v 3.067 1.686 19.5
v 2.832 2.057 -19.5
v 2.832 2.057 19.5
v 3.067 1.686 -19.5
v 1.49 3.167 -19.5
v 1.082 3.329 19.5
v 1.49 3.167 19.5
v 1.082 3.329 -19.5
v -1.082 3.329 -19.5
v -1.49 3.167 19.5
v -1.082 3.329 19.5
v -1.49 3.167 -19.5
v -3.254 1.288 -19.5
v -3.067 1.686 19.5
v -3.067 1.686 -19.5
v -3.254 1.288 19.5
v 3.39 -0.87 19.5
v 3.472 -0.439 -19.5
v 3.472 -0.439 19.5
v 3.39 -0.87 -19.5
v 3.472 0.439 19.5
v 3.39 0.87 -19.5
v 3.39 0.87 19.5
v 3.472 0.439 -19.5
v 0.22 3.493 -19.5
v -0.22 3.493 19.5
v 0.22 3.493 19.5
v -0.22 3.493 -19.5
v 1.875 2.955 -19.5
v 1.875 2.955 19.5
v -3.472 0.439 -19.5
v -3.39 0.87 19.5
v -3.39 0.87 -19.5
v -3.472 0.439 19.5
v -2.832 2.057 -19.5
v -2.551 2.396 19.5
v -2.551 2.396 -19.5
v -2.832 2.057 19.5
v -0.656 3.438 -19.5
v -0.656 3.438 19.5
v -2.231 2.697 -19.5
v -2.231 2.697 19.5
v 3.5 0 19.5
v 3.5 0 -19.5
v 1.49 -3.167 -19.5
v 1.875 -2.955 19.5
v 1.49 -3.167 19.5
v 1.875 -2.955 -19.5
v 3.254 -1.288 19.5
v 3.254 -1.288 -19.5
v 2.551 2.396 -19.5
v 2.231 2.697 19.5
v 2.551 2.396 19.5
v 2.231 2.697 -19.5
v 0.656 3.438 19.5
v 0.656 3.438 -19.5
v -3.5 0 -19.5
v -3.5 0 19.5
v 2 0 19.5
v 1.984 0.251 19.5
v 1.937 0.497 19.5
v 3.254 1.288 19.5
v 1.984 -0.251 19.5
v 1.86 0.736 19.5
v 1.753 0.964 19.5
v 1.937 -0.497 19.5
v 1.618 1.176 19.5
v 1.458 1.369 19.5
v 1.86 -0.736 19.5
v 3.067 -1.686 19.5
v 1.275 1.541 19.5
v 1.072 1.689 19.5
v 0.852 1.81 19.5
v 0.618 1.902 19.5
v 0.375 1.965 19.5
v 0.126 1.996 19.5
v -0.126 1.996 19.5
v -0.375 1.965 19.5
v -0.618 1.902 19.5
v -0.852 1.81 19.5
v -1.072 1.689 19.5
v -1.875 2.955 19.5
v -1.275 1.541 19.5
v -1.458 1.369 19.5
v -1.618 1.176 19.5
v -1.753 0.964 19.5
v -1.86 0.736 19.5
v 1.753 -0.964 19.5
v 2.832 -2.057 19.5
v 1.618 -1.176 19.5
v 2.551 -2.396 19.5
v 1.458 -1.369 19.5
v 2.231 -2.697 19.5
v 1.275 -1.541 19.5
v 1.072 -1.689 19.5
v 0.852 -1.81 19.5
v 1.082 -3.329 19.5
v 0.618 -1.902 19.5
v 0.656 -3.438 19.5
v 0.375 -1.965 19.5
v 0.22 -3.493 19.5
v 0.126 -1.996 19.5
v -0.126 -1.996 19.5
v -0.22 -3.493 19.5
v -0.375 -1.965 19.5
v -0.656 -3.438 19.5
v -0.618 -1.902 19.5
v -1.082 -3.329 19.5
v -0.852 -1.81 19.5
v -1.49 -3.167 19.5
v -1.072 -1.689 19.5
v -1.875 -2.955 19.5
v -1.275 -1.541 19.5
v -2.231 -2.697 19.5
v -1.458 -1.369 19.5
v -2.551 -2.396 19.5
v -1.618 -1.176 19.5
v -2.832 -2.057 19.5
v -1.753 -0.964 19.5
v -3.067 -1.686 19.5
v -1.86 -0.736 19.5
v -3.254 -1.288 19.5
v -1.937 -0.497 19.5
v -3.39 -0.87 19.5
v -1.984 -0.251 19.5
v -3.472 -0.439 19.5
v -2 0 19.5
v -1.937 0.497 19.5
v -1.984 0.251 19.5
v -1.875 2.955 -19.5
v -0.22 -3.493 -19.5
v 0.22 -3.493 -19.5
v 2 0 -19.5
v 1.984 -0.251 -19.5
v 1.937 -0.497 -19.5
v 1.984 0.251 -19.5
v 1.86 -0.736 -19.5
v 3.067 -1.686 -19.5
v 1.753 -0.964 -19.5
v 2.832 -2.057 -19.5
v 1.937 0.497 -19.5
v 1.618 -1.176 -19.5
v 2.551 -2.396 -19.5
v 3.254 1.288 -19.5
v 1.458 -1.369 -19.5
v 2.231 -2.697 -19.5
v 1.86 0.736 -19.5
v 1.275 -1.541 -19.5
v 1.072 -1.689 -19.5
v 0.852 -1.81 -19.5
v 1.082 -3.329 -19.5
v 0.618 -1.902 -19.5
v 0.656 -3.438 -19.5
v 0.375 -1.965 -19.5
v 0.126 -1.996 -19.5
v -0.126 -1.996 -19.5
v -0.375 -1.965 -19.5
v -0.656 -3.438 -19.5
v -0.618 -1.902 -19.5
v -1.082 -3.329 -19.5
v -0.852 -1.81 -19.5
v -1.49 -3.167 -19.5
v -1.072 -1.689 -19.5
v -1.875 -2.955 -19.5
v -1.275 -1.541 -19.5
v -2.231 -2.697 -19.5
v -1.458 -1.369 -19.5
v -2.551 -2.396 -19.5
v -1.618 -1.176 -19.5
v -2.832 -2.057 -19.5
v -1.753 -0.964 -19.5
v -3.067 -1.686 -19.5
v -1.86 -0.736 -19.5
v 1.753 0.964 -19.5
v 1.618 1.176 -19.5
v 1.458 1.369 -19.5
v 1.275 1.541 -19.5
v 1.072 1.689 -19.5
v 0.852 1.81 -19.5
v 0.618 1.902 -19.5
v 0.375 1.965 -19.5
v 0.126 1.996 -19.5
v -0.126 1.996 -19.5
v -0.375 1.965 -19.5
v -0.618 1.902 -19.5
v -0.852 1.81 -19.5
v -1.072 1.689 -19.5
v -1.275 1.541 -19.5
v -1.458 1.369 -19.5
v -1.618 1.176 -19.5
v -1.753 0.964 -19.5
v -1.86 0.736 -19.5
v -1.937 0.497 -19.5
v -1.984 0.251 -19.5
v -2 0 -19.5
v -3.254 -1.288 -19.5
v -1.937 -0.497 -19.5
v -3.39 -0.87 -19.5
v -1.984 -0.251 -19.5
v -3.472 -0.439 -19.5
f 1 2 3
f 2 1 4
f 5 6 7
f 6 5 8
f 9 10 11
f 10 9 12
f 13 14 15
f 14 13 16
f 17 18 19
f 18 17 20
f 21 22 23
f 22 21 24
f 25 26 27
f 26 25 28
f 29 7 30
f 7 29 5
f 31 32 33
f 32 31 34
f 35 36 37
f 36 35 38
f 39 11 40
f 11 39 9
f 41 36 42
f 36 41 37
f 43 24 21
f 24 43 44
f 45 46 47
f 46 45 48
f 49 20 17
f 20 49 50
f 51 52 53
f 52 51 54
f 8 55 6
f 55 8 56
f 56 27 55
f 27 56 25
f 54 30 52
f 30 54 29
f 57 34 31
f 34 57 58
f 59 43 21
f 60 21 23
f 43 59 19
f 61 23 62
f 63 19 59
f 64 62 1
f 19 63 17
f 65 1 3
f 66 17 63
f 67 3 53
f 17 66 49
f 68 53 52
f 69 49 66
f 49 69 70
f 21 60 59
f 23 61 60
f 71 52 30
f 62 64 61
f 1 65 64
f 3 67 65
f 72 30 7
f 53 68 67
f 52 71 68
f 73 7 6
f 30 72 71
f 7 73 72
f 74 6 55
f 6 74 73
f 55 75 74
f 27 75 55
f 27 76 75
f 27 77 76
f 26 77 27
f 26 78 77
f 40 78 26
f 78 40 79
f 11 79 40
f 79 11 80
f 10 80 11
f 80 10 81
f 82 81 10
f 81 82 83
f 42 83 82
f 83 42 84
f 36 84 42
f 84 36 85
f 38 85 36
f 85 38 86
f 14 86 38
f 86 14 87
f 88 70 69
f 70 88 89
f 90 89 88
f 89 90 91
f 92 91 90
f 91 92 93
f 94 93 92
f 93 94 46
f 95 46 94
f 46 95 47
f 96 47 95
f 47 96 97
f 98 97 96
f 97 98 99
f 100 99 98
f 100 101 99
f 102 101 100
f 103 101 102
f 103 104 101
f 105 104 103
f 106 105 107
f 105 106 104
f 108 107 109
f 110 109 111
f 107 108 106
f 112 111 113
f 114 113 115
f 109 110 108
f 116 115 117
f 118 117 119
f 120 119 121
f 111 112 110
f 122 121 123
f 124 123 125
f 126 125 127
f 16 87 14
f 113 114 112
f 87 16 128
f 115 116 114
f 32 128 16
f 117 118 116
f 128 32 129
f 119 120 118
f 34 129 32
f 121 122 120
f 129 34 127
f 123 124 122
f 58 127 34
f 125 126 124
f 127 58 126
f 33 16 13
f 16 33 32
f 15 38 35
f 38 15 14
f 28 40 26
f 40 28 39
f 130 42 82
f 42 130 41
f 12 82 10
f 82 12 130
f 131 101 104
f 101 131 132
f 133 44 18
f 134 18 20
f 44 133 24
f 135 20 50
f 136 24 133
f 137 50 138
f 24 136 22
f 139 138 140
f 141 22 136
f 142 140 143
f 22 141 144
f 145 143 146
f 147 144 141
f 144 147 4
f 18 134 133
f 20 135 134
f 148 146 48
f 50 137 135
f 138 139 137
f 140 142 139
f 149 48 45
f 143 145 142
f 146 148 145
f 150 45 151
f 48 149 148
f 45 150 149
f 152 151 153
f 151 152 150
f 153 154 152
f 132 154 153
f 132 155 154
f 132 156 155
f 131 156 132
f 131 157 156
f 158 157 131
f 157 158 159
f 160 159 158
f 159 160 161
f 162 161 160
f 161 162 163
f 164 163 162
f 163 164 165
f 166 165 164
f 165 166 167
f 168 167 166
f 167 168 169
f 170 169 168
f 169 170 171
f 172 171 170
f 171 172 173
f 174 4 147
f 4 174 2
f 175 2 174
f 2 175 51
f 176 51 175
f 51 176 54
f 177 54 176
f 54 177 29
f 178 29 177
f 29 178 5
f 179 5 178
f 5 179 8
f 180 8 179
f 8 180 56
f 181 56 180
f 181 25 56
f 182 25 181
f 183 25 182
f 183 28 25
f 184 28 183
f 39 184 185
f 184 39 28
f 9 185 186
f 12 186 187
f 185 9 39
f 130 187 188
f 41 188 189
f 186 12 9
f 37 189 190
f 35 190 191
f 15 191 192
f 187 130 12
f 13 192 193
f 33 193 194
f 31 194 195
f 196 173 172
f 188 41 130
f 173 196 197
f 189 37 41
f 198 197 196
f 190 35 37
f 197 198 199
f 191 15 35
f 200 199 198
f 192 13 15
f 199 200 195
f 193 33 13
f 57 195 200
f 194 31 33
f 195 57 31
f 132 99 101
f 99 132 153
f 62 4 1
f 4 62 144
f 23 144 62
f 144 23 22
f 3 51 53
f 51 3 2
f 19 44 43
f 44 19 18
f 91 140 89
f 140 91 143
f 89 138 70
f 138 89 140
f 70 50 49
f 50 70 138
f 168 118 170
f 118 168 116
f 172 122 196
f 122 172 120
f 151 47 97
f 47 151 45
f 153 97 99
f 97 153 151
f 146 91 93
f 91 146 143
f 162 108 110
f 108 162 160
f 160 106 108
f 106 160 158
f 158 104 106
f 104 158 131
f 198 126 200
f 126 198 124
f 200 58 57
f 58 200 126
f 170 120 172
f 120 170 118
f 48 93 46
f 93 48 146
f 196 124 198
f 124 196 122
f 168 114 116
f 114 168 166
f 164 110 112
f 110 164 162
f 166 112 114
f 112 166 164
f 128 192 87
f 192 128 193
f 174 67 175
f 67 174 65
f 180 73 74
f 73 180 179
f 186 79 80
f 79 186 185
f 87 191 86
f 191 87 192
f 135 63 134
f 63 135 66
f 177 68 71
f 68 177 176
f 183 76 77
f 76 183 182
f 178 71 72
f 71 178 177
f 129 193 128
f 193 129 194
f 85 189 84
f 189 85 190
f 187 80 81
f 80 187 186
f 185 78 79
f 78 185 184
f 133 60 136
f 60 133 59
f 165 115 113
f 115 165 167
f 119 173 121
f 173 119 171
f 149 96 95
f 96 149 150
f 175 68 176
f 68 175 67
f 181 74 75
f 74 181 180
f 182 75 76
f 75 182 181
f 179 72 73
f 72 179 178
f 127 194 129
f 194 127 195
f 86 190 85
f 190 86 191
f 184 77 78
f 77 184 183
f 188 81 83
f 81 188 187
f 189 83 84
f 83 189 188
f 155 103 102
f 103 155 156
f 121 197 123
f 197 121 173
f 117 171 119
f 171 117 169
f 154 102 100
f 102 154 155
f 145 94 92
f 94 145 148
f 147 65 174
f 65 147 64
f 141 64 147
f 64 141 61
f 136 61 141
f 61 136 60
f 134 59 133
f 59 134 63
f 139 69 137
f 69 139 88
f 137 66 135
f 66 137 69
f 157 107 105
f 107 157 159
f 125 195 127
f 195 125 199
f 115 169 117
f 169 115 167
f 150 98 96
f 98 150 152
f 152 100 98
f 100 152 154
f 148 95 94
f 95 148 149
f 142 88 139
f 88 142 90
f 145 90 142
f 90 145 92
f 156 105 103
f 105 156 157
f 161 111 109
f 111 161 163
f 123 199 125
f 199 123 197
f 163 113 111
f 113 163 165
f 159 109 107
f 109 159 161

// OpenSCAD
$fn = 50;


difference() {
	union() {
		translate(v = [0, 0, -19.5000000000]) {
			cylinder(h = 39, r = 3.5000000000);
		}
	}
	union() {
		translate(v = [0, 0, -100.0000000000]) {
			cylinder(h = 200, r = 2);
		}
	}
}
